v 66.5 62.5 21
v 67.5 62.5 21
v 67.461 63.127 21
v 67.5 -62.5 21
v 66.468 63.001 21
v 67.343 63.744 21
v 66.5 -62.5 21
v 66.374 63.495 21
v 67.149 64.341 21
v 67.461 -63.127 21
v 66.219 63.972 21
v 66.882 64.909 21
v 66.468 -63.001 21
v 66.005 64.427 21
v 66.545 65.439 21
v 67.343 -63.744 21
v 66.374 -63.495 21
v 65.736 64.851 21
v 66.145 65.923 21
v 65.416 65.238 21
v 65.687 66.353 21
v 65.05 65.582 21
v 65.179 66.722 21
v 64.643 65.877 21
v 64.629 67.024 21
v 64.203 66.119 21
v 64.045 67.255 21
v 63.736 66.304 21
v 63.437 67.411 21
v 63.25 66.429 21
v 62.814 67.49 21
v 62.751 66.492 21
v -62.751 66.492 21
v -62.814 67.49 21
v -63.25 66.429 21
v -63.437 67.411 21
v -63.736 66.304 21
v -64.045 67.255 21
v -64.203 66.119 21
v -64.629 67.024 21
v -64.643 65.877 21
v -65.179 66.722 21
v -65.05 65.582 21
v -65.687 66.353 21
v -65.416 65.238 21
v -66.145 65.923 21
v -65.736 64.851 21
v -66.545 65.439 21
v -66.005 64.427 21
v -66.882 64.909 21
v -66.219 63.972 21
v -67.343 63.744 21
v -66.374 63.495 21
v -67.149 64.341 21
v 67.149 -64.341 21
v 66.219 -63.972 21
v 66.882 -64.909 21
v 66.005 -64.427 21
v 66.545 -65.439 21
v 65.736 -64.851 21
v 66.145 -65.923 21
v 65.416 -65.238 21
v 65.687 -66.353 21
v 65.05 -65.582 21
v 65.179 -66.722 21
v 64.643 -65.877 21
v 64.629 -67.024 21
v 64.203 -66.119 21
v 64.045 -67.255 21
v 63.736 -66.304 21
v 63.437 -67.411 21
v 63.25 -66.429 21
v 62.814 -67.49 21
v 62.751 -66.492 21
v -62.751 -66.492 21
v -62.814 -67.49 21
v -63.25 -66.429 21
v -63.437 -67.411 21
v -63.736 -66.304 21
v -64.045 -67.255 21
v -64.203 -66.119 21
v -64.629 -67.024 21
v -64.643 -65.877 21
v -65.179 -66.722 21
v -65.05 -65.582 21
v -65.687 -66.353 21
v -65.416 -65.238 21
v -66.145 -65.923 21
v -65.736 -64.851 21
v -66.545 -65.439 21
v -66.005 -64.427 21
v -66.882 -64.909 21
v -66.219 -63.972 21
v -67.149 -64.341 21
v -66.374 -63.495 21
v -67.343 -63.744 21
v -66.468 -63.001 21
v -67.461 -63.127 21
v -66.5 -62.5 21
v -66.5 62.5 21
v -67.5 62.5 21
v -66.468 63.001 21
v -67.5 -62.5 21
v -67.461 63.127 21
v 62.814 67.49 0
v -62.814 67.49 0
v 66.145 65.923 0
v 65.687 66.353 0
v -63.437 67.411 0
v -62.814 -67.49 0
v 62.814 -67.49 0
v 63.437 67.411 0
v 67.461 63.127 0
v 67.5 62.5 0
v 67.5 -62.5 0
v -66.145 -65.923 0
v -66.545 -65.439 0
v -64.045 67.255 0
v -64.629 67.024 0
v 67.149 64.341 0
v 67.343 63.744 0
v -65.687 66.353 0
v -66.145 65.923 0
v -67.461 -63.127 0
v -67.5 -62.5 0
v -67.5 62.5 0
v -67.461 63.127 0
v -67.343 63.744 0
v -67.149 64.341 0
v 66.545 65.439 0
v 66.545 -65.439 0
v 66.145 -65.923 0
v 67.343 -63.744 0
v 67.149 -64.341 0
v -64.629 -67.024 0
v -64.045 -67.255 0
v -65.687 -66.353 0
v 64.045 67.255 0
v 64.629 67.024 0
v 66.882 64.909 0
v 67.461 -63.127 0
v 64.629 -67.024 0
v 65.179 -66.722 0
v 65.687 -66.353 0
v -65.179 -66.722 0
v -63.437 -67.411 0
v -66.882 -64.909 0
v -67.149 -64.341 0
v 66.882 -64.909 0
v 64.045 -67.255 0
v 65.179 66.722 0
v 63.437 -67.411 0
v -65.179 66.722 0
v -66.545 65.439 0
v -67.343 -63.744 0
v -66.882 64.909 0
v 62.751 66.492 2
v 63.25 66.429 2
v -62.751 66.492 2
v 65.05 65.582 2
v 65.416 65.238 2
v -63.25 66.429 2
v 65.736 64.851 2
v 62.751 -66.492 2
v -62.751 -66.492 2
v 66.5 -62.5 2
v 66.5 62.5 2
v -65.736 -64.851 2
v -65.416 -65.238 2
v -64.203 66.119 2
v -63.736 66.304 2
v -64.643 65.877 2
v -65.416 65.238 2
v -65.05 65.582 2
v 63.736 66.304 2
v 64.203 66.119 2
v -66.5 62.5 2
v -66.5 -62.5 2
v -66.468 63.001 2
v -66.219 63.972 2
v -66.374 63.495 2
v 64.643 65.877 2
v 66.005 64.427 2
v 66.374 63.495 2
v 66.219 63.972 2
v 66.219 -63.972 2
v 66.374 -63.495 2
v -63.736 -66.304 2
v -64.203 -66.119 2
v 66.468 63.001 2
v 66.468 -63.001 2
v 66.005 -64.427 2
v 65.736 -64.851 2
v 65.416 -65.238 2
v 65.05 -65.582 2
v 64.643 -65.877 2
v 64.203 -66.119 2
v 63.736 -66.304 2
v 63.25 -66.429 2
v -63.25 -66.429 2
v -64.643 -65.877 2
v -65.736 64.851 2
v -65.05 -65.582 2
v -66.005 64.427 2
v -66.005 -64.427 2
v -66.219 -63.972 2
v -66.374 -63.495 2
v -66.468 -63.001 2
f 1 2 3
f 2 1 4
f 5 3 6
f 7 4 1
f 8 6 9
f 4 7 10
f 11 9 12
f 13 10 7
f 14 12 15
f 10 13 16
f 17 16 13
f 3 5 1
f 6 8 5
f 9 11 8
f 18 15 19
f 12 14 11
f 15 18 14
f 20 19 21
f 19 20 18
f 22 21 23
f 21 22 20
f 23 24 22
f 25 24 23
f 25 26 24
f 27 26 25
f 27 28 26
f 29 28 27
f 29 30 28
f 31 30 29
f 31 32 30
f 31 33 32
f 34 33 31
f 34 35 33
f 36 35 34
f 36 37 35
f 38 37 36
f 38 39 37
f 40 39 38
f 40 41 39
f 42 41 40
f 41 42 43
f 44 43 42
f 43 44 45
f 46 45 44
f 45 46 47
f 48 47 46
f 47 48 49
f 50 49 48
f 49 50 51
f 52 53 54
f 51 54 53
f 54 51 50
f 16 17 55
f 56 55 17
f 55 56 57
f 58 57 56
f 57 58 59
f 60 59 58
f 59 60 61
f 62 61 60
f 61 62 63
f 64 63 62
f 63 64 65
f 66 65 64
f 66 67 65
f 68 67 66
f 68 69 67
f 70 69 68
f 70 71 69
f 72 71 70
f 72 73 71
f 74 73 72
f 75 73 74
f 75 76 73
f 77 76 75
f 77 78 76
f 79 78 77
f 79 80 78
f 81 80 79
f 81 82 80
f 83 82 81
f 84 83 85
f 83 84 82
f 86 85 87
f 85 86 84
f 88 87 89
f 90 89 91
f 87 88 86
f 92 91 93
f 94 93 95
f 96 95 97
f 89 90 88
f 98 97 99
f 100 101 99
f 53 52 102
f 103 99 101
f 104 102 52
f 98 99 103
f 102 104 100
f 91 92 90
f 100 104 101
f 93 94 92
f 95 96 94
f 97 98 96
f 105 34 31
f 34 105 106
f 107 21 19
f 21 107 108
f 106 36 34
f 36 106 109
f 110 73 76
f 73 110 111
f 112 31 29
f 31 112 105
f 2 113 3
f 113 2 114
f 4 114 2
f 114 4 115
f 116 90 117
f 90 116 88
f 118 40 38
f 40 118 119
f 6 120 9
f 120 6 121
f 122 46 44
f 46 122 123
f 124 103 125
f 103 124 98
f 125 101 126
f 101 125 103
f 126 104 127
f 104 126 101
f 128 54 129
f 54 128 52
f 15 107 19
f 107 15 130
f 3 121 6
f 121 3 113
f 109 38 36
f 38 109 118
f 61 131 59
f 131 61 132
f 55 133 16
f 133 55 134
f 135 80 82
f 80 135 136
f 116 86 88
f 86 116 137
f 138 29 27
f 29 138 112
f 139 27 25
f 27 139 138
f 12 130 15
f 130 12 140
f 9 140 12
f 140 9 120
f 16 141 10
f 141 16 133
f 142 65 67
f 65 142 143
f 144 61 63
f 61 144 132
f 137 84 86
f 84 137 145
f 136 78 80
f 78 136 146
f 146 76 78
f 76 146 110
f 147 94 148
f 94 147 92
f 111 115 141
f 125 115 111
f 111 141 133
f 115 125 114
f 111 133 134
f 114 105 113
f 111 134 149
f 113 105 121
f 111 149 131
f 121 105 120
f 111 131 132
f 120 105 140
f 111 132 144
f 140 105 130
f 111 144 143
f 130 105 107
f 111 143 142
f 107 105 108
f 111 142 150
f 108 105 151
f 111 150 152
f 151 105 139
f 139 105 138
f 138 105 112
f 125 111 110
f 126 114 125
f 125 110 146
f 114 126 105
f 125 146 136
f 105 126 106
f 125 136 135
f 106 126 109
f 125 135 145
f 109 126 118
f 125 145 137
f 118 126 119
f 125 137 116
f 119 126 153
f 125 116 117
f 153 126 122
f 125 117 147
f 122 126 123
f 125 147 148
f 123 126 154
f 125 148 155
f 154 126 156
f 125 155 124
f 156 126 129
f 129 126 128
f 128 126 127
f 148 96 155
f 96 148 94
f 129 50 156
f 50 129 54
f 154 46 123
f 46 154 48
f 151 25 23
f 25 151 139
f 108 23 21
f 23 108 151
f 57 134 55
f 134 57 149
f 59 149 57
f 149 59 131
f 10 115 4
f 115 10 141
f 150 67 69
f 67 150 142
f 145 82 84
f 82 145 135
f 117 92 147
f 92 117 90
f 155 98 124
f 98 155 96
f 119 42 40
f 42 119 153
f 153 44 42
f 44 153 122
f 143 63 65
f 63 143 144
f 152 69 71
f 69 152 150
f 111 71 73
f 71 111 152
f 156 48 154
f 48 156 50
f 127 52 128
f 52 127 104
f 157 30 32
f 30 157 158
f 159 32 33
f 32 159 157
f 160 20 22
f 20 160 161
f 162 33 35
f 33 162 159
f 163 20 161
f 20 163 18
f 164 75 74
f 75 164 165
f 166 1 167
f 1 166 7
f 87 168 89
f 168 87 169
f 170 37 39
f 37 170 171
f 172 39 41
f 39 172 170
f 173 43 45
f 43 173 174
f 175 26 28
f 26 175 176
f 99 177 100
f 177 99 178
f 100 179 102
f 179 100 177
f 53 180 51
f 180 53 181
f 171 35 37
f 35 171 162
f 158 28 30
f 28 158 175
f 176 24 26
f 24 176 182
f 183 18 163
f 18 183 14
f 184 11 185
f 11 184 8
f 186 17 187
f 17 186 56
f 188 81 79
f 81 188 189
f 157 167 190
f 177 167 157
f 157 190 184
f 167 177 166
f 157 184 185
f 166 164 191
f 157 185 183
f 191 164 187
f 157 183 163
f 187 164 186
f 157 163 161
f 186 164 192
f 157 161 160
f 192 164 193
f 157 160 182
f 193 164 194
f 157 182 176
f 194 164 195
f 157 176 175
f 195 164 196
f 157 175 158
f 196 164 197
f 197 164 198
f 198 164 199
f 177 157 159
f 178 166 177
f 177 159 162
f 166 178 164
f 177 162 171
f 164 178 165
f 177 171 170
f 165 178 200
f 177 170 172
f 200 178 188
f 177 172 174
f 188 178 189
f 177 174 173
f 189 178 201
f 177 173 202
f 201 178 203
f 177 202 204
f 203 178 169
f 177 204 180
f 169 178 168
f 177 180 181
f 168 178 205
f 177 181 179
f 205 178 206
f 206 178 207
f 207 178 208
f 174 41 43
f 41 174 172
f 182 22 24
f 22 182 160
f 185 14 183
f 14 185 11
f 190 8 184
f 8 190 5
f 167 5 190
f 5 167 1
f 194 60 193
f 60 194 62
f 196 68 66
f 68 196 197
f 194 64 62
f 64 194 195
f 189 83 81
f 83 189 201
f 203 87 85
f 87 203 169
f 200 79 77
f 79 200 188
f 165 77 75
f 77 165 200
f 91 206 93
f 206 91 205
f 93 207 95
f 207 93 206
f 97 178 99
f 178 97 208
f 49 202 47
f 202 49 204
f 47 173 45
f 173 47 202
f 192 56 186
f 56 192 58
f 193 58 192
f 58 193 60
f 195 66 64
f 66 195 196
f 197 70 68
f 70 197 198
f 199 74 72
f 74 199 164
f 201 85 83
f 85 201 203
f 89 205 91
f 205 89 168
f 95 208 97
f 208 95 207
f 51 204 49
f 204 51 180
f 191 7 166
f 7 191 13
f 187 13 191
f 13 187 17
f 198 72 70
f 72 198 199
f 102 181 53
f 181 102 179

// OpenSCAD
$fn = 50;


difference() {
	union() {
		hull() {
			translate(v = [-62.5000000000, 62.5000000000, 0]) {
				cylinder(h = 21, r = 5);
			}
			translate(v = [62.5000000000, 62.5000000000, 0]) {
				cylinder(h = 21, r = 5);
			}
			translate(v = [-62.5000000000, -62.5000000000, 0]) {
				cylinder(h = 21, r = 5);
			}
			translate(v = [62.5000000000, -62.5000000000, 0]) {
				cylinder(h = 21, r = 5);
			}
		}
	}
	union() {
		translate(v = [0, 0, 2]) {
			hull() {
				translate(v = [-62.5000000000, 62.5000000000, 0]) {
					cylinder(h = 19, r = 4);
				}
				translate(v = [62.5000000000, 62.5000000000, 0]) {
					cylinder(h = 19, r = 4);
				}
				translate(v = [-62.5000000000, -62.5000000000, 0]) {
					cylinder(h = 19, r = 4);
				}
				translate(v = [62.5000000000, -62.5000000000, 0]) {
					cylinder(h = 19, r = 4);
				}
			}
		}
	}
}
